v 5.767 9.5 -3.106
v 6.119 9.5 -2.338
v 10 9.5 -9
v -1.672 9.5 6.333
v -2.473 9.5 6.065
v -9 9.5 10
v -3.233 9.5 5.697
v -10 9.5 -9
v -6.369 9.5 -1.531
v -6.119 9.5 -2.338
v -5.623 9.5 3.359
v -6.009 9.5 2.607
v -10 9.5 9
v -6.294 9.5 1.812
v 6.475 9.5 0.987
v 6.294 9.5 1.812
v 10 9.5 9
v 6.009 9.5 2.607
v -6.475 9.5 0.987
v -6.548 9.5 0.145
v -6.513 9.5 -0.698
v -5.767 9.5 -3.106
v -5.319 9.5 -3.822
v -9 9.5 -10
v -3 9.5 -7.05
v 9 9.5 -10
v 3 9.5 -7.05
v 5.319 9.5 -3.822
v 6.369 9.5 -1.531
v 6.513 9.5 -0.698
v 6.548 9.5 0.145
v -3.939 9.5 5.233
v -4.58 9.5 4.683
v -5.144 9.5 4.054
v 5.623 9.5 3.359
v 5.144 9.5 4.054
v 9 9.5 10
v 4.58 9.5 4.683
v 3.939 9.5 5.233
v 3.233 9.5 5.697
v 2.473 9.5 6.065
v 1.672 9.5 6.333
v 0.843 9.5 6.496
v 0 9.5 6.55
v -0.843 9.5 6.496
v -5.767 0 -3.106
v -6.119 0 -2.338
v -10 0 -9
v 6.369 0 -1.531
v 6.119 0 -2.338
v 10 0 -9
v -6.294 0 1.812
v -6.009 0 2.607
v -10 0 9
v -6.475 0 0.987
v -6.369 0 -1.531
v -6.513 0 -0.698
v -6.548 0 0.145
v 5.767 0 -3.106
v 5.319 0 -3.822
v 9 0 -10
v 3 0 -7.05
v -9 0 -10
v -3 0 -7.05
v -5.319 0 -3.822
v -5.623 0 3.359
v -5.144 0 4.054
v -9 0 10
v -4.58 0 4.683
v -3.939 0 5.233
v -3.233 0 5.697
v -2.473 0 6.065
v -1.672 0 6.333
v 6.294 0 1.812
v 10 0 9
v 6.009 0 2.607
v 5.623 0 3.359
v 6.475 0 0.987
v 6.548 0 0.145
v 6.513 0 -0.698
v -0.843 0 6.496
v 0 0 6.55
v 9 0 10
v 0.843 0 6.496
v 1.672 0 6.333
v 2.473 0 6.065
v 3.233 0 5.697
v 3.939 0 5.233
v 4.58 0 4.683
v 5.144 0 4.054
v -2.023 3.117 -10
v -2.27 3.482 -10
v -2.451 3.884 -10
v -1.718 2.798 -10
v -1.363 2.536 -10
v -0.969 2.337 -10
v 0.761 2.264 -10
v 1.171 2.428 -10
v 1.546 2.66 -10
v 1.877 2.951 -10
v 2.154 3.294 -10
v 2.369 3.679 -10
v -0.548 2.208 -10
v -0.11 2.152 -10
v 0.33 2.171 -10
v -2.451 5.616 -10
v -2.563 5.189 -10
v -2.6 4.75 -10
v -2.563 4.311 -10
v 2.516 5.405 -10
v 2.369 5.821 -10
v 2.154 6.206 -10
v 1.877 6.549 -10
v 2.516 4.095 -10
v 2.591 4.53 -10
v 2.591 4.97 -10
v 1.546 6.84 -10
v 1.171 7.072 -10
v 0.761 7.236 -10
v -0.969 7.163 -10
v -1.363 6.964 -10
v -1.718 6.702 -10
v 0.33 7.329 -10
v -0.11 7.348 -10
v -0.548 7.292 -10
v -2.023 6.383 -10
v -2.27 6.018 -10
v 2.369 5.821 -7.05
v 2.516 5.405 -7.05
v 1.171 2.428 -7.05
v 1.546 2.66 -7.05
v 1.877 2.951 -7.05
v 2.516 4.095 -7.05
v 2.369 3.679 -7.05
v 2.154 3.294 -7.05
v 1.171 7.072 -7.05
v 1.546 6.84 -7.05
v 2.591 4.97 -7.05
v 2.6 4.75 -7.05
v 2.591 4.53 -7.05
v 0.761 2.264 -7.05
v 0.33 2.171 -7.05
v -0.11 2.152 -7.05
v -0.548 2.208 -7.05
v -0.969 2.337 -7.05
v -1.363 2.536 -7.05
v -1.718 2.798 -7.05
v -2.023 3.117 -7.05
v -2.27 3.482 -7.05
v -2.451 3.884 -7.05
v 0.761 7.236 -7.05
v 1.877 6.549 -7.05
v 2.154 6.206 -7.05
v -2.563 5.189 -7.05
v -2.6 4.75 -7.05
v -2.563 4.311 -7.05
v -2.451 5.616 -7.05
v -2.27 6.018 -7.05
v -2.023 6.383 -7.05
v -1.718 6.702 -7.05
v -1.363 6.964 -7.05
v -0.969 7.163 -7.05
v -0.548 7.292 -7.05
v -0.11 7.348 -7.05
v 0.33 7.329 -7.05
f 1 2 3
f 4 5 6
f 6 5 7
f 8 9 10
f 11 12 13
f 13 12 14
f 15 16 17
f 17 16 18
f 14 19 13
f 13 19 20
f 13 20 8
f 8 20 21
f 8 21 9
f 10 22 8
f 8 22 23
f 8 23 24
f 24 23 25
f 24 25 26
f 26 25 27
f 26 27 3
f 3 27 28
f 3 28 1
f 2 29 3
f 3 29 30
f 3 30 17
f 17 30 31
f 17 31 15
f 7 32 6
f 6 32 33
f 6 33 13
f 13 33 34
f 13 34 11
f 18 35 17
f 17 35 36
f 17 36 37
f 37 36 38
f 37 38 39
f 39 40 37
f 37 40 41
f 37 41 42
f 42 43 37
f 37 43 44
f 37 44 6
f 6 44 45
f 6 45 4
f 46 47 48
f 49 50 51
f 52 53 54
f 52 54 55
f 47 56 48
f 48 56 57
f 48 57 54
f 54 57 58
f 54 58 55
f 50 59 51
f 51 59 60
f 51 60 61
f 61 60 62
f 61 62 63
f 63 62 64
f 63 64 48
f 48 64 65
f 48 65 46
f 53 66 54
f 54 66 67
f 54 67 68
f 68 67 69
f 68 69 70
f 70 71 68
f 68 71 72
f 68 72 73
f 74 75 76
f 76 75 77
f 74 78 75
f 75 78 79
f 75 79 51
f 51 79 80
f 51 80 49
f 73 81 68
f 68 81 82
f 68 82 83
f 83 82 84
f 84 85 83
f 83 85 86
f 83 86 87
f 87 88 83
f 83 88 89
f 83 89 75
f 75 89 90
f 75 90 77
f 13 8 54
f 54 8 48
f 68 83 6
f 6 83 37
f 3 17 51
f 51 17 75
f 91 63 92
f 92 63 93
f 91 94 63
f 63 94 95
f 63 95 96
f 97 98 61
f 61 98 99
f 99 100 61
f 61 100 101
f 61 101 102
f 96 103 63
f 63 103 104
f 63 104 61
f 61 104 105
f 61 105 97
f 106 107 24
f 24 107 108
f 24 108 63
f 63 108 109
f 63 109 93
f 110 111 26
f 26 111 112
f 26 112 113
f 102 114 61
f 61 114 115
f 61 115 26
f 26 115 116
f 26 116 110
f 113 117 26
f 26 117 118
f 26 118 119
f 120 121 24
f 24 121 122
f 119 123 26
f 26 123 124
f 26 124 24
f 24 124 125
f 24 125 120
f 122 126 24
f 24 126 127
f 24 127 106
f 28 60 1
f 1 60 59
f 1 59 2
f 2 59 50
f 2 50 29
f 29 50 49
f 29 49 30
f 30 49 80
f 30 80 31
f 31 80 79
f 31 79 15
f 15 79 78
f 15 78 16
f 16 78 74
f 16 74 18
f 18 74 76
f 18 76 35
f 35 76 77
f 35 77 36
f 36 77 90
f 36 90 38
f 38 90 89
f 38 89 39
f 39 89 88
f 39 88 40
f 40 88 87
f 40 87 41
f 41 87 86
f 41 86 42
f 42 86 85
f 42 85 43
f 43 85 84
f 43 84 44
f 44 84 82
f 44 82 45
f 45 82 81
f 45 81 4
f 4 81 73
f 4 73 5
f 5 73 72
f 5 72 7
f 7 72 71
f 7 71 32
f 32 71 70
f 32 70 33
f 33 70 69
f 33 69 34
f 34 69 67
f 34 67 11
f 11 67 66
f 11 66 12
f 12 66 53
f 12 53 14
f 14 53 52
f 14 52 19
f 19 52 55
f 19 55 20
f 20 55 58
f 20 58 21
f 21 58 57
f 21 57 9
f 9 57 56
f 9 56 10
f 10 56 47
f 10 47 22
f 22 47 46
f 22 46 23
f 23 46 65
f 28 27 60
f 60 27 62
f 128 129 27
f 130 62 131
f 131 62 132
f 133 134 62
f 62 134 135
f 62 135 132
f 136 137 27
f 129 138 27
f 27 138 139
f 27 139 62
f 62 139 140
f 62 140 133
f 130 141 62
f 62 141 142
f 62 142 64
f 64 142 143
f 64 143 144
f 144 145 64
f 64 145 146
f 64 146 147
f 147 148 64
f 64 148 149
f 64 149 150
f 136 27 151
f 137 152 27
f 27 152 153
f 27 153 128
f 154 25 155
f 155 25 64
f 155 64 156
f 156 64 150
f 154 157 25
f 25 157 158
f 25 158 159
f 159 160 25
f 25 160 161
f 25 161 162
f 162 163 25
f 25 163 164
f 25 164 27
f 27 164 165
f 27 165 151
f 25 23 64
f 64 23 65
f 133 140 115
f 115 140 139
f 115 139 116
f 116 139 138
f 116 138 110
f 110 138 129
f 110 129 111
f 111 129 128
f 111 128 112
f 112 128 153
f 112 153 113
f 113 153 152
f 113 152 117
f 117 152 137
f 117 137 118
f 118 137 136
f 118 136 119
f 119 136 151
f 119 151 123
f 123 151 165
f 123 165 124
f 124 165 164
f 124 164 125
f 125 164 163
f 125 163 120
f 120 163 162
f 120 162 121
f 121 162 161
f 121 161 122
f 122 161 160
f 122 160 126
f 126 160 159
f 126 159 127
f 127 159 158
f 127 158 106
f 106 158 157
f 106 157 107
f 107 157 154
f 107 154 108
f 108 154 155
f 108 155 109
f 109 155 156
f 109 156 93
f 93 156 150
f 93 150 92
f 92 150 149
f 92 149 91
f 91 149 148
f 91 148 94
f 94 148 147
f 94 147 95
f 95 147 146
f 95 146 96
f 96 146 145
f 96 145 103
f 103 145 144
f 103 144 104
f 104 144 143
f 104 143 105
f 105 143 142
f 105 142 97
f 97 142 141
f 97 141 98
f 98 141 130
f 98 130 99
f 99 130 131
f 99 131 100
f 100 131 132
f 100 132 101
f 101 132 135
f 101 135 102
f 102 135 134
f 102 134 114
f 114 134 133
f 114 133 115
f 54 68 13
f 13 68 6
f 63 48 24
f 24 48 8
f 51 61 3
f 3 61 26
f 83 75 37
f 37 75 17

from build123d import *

# Parameters (mm, degrees)
SKETCH1_W           = 20
SKETCH1_H           = 20
BOSS_EXTRUDE1_DEPTH = 9.5
CUT_EXTRUDE1_REACH  = 22
SKETCH3_R           = 2.6
CHAMFER1_SIZE       = 1


with BuildPart() as part:
    # Sketch1 → Boss-Extrude1 (new body)
    with BuildSketch(Plane(origin=(0, 0, 0), x_dir=(1, 0, 0), z_dir=(0, 1, 0))):
        Rectangle(SKETCH1_W, SKETCH1_H)
        with BuildLine():
            Line((-5.319354919, 3.821905708), (-3, 7.05))
            Line((-3, 7.05), (3, 7.05))
            Line((3, 7.05), (5.319354919, 3.821905708))
            ThreePointArc((5.319354919, 3.821905708), (0, -6.55), (-5.319354919, 3.821905708))
        make_face(mode=Mode.SUBTRACT)
    extrude(amount=BOSS_EXTRUDE1_DEPTH)

    # Sketch3 → Cut-Extrude1 (cut, up to next)
    with BuildSketch(Plane(origin=(0, 0, -10), x_dir=(-1, 0, 0), z_dir=(0, 0, -1)), mode=Mode.PRIVATE) as cut_extrude1_sk1:
        with Locations((0, 4.75)):
            Circle(SKETCH3_R)
    cut_extrude1_tool1 = extrude(cut_extrude1_sk1.sketch, amount=-CUT_EXTRUDE1_REACH, mode=Mode.PRIVATE) & part.part
    add(cut_extrude1_tool1.solids().sort_by_distance((0, 4.75, -10))[0], mode=Mode.SUBTRACT)

    # Chamfer1
    chamfer1_edges = [part.edges().sort_by_distance(p)[0] for p in [
        (-10, 4.75, -10),
        (10, 4.75, -10),
        (10, 4.75, 10),
        (-10, 4.75, 10),
    ]]
    chamfer(chamfer1_edges, length=CHAMFER1_SIZE)


solid = part.part
